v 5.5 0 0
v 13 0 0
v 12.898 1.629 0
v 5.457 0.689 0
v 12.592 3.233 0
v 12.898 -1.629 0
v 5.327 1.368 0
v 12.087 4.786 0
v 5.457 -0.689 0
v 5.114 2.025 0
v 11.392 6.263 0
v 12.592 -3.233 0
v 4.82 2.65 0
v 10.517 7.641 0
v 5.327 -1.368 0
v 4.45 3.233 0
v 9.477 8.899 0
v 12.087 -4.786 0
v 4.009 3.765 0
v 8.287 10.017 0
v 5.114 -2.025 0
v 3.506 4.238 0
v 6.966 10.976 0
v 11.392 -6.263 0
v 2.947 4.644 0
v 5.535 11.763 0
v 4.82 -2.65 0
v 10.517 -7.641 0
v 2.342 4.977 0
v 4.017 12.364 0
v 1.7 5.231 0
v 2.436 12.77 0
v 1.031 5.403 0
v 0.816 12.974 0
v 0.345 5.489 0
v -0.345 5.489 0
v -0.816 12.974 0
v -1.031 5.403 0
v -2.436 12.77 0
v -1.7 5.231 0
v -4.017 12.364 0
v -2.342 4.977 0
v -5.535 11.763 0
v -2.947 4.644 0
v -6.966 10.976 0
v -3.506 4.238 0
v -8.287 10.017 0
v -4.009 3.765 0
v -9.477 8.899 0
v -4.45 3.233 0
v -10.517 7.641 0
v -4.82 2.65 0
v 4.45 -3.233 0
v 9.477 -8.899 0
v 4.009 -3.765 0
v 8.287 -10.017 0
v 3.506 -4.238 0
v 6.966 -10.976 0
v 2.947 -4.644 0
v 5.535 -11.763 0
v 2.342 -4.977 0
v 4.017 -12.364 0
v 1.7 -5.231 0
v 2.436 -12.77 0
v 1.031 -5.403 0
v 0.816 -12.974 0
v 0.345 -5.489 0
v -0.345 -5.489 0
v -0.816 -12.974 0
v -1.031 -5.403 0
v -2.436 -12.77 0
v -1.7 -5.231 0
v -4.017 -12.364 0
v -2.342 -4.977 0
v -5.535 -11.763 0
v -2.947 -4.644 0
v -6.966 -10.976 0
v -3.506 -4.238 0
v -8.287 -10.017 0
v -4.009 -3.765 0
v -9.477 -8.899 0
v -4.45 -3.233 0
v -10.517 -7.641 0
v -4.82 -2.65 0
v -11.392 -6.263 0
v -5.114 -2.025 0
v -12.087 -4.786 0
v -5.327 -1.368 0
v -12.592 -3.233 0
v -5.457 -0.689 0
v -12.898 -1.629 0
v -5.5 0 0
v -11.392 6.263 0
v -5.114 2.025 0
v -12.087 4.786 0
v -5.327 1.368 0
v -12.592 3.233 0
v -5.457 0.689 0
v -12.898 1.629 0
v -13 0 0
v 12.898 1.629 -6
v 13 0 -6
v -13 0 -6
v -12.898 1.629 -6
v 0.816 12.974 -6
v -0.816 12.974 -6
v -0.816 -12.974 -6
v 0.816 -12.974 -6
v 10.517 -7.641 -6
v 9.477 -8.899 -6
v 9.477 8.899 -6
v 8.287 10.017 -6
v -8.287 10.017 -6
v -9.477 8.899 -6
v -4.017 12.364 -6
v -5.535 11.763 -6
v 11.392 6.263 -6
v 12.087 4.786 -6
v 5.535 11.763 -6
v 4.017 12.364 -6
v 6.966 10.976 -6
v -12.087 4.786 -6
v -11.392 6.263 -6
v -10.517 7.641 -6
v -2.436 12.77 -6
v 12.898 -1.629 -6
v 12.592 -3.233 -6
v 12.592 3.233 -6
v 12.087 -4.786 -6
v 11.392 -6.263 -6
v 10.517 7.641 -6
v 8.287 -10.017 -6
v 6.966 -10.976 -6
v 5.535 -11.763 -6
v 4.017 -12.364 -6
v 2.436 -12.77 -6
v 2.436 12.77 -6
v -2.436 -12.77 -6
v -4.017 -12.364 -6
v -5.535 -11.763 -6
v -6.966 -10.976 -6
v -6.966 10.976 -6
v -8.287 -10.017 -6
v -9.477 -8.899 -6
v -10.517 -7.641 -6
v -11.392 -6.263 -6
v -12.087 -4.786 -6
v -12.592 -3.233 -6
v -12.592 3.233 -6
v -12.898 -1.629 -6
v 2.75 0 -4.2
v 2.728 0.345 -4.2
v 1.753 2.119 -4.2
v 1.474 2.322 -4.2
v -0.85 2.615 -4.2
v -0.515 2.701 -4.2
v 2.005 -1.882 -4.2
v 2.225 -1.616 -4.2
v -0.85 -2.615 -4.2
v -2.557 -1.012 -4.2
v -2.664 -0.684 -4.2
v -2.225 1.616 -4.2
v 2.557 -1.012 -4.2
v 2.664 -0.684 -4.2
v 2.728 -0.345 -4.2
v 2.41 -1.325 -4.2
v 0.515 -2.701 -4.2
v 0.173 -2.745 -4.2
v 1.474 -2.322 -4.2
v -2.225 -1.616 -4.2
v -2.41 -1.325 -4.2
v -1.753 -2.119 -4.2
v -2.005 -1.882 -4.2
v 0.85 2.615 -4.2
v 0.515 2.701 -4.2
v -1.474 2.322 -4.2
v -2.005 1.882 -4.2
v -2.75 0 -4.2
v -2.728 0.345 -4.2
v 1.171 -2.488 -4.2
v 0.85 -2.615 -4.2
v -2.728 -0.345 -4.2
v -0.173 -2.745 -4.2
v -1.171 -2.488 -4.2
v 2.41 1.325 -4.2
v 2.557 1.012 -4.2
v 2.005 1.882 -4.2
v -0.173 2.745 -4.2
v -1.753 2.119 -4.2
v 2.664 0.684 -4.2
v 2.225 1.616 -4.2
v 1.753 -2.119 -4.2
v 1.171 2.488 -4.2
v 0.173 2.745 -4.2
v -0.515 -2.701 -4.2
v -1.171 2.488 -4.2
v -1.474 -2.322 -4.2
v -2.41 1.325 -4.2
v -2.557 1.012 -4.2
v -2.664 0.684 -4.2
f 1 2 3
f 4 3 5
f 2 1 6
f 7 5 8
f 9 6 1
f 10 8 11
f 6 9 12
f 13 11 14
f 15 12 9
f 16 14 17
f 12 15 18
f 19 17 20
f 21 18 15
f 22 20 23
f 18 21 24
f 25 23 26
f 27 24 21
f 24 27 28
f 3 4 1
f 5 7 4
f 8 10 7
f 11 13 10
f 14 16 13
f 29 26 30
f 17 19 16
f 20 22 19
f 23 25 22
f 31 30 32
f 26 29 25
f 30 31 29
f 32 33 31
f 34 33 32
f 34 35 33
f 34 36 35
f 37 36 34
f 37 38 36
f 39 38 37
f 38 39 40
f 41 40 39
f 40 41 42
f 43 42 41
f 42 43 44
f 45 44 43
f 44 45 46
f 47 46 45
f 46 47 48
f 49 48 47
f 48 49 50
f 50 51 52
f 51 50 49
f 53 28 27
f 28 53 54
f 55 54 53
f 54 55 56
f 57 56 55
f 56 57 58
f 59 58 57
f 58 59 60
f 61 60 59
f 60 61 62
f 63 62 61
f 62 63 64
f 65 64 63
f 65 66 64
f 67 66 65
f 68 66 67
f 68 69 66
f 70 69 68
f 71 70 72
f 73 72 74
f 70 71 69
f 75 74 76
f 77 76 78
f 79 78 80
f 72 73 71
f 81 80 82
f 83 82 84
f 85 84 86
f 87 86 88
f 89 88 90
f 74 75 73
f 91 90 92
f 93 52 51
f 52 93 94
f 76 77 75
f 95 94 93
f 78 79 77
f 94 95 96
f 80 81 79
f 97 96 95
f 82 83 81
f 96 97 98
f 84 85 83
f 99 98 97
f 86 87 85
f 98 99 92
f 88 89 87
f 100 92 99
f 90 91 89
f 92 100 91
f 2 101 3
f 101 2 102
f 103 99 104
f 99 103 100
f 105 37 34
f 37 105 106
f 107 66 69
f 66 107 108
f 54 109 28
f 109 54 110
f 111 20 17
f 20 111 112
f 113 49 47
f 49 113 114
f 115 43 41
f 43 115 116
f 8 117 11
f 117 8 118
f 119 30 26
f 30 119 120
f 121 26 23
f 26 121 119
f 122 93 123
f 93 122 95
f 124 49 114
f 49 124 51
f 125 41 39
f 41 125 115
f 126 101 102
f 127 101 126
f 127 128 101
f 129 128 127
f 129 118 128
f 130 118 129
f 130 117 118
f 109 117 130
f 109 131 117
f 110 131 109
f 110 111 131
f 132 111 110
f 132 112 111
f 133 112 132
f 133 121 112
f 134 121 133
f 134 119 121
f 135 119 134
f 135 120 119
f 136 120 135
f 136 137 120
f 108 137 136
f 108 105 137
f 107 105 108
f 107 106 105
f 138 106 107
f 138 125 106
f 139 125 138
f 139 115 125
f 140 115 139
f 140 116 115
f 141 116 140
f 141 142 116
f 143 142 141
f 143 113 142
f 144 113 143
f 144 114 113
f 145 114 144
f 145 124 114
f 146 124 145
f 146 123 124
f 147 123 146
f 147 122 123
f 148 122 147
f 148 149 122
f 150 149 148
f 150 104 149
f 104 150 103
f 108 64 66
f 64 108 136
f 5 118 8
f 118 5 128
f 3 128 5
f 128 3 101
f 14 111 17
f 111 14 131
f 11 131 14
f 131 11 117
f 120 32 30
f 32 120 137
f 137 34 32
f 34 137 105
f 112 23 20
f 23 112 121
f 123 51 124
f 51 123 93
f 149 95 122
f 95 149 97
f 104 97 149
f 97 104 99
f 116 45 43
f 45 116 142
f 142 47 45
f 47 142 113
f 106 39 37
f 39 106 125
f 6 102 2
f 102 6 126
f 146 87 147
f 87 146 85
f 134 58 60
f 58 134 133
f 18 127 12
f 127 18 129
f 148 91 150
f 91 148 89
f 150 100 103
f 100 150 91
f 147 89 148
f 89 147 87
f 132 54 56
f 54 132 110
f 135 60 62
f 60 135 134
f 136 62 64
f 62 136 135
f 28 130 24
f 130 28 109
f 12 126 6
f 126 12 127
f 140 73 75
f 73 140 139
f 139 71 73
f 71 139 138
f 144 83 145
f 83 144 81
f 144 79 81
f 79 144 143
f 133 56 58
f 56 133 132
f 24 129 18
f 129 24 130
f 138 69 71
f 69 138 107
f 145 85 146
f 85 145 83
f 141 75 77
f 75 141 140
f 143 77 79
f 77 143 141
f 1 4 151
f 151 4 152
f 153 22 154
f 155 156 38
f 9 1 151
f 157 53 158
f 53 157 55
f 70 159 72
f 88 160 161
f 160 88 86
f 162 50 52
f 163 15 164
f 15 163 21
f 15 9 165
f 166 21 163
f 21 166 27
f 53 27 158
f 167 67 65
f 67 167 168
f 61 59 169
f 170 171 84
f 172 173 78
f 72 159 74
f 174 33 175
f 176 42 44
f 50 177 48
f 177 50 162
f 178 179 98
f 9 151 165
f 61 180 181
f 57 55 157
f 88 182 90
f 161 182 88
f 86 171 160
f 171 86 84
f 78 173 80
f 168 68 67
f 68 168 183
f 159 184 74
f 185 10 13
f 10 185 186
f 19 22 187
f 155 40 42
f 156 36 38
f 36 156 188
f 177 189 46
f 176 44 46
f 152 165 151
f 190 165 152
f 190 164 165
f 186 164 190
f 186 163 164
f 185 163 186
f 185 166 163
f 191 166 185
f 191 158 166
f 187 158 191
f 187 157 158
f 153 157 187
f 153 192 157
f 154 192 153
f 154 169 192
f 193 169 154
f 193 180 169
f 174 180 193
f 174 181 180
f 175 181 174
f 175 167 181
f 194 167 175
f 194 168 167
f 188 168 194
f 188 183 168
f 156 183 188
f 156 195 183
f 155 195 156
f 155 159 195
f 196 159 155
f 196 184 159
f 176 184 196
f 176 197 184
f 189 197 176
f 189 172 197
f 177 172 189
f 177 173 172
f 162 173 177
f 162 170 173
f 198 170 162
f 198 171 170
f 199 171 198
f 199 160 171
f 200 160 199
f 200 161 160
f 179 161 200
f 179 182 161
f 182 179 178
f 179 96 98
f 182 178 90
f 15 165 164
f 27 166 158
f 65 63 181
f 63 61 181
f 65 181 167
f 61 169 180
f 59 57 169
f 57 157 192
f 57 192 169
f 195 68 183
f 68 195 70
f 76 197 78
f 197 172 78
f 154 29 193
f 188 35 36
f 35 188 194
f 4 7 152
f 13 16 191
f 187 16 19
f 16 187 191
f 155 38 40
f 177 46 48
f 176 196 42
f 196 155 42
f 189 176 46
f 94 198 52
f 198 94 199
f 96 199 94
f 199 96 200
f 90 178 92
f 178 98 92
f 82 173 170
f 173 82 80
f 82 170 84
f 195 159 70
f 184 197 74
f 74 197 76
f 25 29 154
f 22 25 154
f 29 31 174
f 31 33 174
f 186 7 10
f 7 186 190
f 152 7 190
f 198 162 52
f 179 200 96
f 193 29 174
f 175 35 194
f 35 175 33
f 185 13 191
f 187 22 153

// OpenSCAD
$fn = 50;


difference() {
	union() {
		translate(v = [0, 0, -3.0000000000]) {
			cylinder(h = 3, r = 10.0000000000);
		}
		translate(v = [0, 0, -6.0000000000]) {
			cylinder(h = 6, r = 13.0000000000);
		}
	}
	union() {
		translate(v = [0, 0, 0]) {
			rotate(a = [0, 0, 0]) {
				difference() {
					union() {
						#translate(v = [0, 0, -3.0000000000]) {
							cylinder(h = 3, r = 2.2500000000);
						}
						#translate(v = [0, 0, -4.2000000000]) {
							cylinder(h = 4.2000000000, r1 = 2.7500000000, r2 = 5.5000000000);
						}
						#translate(v = [0, 0, -3.0000000000]) {
							cylinder(h = 3, r = 2.7500000000);
						}
						#translate(v = [0, 0, -3.0000000000]) {
							cylinder(h = 3, r = 2.2500000000);
						}
					}
					union();
				}
			}
		}
	}
}
